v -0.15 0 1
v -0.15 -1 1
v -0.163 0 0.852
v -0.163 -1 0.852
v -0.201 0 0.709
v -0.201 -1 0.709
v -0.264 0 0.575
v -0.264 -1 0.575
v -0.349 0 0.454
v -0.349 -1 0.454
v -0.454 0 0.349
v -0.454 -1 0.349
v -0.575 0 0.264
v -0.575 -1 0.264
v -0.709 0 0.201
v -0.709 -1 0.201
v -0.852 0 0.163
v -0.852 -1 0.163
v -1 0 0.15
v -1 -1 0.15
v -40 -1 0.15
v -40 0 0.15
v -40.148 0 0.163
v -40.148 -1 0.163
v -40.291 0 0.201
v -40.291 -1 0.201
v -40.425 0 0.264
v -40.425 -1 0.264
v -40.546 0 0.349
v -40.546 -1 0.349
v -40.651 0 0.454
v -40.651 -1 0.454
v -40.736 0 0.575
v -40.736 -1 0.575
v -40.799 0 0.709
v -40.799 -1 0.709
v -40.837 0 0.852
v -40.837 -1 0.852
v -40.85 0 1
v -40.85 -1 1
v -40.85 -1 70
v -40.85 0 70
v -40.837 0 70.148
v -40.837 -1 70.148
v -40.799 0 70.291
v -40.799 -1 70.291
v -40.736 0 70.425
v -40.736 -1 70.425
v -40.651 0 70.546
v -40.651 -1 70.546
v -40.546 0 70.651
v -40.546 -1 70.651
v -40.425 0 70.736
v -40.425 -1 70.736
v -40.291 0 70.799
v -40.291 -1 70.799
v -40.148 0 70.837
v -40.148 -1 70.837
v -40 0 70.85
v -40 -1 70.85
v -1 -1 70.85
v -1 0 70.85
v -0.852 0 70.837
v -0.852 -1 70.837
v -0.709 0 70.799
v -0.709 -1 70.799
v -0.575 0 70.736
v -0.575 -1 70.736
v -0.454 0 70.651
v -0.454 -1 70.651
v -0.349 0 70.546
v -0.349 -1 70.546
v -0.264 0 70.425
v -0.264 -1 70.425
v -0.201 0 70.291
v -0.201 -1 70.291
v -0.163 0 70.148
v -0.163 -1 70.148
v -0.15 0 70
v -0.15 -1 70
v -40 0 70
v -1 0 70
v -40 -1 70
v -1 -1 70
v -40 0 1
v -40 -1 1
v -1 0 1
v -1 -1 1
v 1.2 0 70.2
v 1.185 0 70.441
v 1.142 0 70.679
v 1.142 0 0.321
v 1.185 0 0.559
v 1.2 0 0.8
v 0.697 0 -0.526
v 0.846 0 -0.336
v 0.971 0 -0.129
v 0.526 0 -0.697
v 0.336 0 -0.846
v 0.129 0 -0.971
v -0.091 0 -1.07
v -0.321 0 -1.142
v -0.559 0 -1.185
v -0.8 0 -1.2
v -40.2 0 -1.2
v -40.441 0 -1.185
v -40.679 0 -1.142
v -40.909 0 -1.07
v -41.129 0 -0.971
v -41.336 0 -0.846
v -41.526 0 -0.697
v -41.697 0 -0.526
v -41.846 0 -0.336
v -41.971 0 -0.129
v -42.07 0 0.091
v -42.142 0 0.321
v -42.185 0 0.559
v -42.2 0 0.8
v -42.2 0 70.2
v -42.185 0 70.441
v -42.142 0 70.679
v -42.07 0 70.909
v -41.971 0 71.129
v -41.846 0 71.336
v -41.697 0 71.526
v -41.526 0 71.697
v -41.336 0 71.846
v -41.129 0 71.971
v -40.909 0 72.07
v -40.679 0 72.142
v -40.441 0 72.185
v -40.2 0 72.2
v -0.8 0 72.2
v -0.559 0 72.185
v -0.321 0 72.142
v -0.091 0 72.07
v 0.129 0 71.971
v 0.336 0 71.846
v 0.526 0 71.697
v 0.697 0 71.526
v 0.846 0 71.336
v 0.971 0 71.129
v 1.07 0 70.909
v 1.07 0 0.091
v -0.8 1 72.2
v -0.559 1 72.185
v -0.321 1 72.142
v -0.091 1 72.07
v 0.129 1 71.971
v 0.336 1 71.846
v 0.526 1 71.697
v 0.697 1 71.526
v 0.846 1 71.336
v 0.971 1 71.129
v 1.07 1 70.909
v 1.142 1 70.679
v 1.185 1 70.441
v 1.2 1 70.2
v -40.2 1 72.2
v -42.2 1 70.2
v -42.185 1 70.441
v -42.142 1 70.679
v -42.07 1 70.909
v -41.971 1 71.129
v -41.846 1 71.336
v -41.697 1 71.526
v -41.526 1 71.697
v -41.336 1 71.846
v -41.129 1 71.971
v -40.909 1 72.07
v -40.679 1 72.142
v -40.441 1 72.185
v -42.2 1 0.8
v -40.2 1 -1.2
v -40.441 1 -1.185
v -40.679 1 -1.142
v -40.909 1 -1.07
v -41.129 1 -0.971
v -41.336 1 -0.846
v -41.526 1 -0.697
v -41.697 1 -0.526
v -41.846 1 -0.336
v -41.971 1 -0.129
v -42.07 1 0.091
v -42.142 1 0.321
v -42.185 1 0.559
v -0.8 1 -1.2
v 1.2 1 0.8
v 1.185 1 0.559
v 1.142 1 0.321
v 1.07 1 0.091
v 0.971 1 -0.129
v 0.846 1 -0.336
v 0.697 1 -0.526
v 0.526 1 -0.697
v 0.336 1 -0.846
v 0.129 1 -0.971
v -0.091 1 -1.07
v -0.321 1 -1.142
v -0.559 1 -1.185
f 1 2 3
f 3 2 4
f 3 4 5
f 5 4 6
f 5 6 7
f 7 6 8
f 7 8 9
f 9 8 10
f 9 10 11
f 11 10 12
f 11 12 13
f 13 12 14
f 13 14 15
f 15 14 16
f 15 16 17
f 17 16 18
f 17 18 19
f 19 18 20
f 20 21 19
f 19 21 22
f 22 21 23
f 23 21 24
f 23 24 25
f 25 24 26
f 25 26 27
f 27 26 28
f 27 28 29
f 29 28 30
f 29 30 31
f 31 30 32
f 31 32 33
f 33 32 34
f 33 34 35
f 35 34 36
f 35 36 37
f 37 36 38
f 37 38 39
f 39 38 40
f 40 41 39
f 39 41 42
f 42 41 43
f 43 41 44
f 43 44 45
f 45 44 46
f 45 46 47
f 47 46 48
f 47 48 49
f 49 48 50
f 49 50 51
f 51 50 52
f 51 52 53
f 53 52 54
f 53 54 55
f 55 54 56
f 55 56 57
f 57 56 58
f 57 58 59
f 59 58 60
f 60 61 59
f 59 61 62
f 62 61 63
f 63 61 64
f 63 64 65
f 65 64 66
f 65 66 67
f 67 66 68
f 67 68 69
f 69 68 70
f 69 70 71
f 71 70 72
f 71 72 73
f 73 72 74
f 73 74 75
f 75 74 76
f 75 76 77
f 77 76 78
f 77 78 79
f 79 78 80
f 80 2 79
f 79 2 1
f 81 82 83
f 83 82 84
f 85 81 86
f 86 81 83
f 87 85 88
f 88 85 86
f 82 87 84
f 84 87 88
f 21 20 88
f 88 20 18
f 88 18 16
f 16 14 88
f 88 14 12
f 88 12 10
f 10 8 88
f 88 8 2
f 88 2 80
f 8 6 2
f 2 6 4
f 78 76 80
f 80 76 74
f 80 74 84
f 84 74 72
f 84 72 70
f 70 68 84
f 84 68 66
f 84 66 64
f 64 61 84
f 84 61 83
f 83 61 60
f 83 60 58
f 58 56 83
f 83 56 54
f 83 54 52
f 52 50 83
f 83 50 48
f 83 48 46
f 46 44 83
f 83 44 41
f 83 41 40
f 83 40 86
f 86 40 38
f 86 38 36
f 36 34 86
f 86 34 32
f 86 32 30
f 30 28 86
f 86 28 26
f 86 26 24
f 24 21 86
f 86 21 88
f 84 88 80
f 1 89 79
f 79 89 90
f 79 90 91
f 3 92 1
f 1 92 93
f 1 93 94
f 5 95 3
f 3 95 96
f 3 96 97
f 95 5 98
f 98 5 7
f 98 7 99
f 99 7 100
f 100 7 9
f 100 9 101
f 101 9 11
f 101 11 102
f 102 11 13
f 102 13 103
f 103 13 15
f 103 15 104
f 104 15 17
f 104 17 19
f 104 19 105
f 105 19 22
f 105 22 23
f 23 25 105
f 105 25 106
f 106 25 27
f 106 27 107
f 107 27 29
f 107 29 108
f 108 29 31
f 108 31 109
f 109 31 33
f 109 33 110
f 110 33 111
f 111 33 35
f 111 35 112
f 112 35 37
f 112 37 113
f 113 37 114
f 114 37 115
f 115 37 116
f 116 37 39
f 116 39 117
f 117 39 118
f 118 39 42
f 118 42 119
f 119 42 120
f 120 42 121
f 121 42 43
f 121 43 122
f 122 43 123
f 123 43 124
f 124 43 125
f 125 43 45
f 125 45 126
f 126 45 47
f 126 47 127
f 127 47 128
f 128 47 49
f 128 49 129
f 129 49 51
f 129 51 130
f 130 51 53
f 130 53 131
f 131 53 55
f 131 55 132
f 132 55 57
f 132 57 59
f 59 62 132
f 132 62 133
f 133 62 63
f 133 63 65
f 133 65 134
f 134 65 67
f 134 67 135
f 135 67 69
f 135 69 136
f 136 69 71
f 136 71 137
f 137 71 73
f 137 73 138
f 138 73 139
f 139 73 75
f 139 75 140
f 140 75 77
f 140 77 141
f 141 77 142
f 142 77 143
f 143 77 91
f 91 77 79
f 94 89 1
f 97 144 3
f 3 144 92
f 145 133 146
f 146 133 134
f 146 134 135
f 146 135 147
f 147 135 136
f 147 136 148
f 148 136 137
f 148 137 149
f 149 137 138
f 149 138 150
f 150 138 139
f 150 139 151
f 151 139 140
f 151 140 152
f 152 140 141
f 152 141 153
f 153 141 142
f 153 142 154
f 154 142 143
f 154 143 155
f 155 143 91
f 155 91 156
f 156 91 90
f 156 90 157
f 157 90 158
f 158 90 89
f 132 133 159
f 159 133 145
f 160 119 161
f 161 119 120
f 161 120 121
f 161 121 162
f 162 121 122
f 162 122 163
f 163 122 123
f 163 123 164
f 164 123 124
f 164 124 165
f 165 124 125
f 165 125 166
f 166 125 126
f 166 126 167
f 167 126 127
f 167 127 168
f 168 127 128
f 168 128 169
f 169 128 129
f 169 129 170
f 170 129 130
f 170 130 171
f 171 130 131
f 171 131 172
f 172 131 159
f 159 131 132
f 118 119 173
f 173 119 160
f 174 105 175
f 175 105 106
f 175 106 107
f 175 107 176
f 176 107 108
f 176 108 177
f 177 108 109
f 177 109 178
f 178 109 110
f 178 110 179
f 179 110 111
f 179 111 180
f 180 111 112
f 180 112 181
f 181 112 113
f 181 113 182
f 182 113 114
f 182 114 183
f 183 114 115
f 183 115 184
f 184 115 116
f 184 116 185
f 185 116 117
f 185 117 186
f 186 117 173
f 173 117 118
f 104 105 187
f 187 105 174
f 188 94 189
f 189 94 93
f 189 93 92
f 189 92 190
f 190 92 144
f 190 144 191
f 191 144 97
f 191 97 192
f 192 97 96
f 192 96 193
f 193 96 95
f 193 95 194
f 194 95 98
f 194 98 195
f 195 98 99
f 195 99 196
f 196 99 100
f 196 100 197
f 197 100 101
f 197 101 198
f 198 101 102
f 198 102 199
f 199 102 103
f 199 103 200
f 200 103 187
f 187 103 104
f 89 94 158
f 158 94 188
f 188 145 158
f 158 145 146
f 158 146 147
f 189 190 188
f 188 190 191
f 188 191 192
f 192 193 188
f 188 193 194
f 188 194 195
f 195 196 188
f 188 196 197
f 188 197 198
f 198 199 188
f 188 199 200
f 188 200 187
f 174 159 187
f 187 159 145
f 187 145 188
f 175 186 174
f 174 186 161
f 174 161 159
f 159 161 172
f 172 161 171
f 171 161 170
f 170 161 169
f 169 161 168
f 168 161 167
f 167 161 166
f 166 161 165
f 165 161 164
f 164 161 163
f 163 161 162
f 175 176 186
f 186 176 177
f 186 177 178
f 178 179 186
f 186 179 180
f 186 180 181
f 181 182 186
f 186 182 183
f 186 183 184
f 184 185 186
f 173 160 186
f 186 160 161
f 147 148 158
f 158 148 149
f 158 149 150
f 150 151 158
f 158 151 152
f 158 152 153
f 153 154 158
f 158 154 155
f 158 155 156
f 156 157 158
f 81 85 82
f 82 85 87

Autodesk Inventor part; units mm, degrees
ref_plane "YZ Plane" through (0, 0, 0) normal (1, 0, 0) x (0, 1, 0)
ref_plane "XZ Plane" through (0, 0, 0) normal (0, 1, 0) x (-1, 0, 0)
ref_plane "XY Plane" through (0, 0, 0) normal (0, 0, 1) x (1, 0, 0)
sketch "Skizze1" plane through (0, 0, 0) normal (0, 1, 0) x (-1, 0, 0)
  line L0 (1, 0) -> (40, 0)
  line L1 (41, 1) -> (41, 70)
  line L2 (40, 71) -> (1, 71)
  line L3 (0, 70) -> (0, 1)
  line L4 (42.2, 70.2) -> (42.2, 0.8)
  line L5 (40.2, -1.2) -> (0.8, -1.2)
  line L6 (-1.2, 0.8) -> (-1.2, 70.2)
  line L7 (0.8, 72.2) -> (40.2, 72.2)
  arc A0 (42.2, 70.2) -> (40.2, 72.2) centre (40.2, 70.2) ccw
  arc A1 (40.2, -1.2) -> (42.2, 0.8) centre (40.2, 0.8) ccw
  arc A2 (-1.2, 0.8) -> (0.8, -1.2) centre (0.8, 0.8) ccw
  arc A3 (0.8, 72.2) -> (-1.2, 70.2) centre (0.8, 70.2) ccw
  arc A4 (41, 70) -> (40, 71) centre (40, 70) ccw
  arc A5 (40, 0) -> (41, 1) centre (40, 1) ccw
  arc A6 (0, 1) -> (1, 0) centre (1, 1) ccw
  arc A7 (1, 71) -> (0, 70) centre (1, 70) ccw
  line L8 (1, 1) -> (1, 70)
  line L9 (1, 70) -> (40, 70)
  line L10 (40, 70) -> (40, 1)
  line L11 (40, 1) -> (1, 1)
  point P0 (0, 0)
  point P1 (41, 71)
  point P2 (41, 0)
  point P3 (0, 71)
  dimension "d0" = 41
  dimension "d1" = 71
  dimension "d2" = 1.2
  dimension "d3" = 2
  dimension "d4" = 1
  dimension "d5" = 1
  dimension "d6" = 1
  dimension "d9" = 1
extrude "Extrusion1" add sketch "Skizze1" along normal blind 1 contours A6 L3 A7 L2 A4 L1 A5 L0 | L4 A1 L5 A2 L6 A3 L7 A0 | L8 L9 L10 L11
extrude "Extrusion2" add sketch "Skizze1" against normal blind 1 contours A6 L3 A7 L2 A4 L1 A5 L0
sketch "Skizze3" plane through (0, -1, 0) normal (0, -1, 0) x (1, 0, 0)
  arc A0 (-41, 1) -> (-40, 0) centre (-40, 1) ccw projected
  line L0 (-40, 0) -> (-1, 0) projected
  arc A1 (-1, 0) -> (0, 1) centre (-1, 1) ccw projected
  line L1 (0, 1) -> (0, 70) projected
  arc A2 (0, 70) -> (-1, 71) centre (-1, 70) ccw projected
  line L2 (-1, 71) -> (-40, 71) projected
  arc A3 (-40, 71) -> (-41, 70) centre (-40, 70) ccw projected
  line L3 (-41, 70) -> (-41, 1) projected
  line L4 (-1, 70) -> (-1, 1) projected
  line L5 (-1, 1) -> (-40, 1) projected
  line L6 (-40, 1) -> (-40, 70) projected
  line L7 (-40, 70) -> (-1, 70) projected
  line L8 (-1, 0.15) -> (-40, 0.15)
  arc A4 (-40.85, 1) -> (-40, 0.15) centre (-40, 1) ccw
  line L9 (-40.85, 1) -> (-40.85, 70)
  arc A5 (-40, 70.85) -> (-40.85, 70) centre (-40, 70) ccw
  line L10 (-40, 70.85) -> (-1, 70.85)
  arc A6 (-0.15, 70) -> (-1, 70.85) centre (-1, 70) ccw
  line L11 (-0.15, 70) -> (-0.15, 1)
  arc A7 (-1, 0.15) -> (-0.15, 1) centre (-1, 1) ccw
  point P0 (0, 0)
  dimension "d12" = 0.15
extrude "Extrusion3" cut sketch "Skizze3" against normal blind 1 contours L3 A3 L2 A2 L1 A1 L0 A0
properties part number "boden"
